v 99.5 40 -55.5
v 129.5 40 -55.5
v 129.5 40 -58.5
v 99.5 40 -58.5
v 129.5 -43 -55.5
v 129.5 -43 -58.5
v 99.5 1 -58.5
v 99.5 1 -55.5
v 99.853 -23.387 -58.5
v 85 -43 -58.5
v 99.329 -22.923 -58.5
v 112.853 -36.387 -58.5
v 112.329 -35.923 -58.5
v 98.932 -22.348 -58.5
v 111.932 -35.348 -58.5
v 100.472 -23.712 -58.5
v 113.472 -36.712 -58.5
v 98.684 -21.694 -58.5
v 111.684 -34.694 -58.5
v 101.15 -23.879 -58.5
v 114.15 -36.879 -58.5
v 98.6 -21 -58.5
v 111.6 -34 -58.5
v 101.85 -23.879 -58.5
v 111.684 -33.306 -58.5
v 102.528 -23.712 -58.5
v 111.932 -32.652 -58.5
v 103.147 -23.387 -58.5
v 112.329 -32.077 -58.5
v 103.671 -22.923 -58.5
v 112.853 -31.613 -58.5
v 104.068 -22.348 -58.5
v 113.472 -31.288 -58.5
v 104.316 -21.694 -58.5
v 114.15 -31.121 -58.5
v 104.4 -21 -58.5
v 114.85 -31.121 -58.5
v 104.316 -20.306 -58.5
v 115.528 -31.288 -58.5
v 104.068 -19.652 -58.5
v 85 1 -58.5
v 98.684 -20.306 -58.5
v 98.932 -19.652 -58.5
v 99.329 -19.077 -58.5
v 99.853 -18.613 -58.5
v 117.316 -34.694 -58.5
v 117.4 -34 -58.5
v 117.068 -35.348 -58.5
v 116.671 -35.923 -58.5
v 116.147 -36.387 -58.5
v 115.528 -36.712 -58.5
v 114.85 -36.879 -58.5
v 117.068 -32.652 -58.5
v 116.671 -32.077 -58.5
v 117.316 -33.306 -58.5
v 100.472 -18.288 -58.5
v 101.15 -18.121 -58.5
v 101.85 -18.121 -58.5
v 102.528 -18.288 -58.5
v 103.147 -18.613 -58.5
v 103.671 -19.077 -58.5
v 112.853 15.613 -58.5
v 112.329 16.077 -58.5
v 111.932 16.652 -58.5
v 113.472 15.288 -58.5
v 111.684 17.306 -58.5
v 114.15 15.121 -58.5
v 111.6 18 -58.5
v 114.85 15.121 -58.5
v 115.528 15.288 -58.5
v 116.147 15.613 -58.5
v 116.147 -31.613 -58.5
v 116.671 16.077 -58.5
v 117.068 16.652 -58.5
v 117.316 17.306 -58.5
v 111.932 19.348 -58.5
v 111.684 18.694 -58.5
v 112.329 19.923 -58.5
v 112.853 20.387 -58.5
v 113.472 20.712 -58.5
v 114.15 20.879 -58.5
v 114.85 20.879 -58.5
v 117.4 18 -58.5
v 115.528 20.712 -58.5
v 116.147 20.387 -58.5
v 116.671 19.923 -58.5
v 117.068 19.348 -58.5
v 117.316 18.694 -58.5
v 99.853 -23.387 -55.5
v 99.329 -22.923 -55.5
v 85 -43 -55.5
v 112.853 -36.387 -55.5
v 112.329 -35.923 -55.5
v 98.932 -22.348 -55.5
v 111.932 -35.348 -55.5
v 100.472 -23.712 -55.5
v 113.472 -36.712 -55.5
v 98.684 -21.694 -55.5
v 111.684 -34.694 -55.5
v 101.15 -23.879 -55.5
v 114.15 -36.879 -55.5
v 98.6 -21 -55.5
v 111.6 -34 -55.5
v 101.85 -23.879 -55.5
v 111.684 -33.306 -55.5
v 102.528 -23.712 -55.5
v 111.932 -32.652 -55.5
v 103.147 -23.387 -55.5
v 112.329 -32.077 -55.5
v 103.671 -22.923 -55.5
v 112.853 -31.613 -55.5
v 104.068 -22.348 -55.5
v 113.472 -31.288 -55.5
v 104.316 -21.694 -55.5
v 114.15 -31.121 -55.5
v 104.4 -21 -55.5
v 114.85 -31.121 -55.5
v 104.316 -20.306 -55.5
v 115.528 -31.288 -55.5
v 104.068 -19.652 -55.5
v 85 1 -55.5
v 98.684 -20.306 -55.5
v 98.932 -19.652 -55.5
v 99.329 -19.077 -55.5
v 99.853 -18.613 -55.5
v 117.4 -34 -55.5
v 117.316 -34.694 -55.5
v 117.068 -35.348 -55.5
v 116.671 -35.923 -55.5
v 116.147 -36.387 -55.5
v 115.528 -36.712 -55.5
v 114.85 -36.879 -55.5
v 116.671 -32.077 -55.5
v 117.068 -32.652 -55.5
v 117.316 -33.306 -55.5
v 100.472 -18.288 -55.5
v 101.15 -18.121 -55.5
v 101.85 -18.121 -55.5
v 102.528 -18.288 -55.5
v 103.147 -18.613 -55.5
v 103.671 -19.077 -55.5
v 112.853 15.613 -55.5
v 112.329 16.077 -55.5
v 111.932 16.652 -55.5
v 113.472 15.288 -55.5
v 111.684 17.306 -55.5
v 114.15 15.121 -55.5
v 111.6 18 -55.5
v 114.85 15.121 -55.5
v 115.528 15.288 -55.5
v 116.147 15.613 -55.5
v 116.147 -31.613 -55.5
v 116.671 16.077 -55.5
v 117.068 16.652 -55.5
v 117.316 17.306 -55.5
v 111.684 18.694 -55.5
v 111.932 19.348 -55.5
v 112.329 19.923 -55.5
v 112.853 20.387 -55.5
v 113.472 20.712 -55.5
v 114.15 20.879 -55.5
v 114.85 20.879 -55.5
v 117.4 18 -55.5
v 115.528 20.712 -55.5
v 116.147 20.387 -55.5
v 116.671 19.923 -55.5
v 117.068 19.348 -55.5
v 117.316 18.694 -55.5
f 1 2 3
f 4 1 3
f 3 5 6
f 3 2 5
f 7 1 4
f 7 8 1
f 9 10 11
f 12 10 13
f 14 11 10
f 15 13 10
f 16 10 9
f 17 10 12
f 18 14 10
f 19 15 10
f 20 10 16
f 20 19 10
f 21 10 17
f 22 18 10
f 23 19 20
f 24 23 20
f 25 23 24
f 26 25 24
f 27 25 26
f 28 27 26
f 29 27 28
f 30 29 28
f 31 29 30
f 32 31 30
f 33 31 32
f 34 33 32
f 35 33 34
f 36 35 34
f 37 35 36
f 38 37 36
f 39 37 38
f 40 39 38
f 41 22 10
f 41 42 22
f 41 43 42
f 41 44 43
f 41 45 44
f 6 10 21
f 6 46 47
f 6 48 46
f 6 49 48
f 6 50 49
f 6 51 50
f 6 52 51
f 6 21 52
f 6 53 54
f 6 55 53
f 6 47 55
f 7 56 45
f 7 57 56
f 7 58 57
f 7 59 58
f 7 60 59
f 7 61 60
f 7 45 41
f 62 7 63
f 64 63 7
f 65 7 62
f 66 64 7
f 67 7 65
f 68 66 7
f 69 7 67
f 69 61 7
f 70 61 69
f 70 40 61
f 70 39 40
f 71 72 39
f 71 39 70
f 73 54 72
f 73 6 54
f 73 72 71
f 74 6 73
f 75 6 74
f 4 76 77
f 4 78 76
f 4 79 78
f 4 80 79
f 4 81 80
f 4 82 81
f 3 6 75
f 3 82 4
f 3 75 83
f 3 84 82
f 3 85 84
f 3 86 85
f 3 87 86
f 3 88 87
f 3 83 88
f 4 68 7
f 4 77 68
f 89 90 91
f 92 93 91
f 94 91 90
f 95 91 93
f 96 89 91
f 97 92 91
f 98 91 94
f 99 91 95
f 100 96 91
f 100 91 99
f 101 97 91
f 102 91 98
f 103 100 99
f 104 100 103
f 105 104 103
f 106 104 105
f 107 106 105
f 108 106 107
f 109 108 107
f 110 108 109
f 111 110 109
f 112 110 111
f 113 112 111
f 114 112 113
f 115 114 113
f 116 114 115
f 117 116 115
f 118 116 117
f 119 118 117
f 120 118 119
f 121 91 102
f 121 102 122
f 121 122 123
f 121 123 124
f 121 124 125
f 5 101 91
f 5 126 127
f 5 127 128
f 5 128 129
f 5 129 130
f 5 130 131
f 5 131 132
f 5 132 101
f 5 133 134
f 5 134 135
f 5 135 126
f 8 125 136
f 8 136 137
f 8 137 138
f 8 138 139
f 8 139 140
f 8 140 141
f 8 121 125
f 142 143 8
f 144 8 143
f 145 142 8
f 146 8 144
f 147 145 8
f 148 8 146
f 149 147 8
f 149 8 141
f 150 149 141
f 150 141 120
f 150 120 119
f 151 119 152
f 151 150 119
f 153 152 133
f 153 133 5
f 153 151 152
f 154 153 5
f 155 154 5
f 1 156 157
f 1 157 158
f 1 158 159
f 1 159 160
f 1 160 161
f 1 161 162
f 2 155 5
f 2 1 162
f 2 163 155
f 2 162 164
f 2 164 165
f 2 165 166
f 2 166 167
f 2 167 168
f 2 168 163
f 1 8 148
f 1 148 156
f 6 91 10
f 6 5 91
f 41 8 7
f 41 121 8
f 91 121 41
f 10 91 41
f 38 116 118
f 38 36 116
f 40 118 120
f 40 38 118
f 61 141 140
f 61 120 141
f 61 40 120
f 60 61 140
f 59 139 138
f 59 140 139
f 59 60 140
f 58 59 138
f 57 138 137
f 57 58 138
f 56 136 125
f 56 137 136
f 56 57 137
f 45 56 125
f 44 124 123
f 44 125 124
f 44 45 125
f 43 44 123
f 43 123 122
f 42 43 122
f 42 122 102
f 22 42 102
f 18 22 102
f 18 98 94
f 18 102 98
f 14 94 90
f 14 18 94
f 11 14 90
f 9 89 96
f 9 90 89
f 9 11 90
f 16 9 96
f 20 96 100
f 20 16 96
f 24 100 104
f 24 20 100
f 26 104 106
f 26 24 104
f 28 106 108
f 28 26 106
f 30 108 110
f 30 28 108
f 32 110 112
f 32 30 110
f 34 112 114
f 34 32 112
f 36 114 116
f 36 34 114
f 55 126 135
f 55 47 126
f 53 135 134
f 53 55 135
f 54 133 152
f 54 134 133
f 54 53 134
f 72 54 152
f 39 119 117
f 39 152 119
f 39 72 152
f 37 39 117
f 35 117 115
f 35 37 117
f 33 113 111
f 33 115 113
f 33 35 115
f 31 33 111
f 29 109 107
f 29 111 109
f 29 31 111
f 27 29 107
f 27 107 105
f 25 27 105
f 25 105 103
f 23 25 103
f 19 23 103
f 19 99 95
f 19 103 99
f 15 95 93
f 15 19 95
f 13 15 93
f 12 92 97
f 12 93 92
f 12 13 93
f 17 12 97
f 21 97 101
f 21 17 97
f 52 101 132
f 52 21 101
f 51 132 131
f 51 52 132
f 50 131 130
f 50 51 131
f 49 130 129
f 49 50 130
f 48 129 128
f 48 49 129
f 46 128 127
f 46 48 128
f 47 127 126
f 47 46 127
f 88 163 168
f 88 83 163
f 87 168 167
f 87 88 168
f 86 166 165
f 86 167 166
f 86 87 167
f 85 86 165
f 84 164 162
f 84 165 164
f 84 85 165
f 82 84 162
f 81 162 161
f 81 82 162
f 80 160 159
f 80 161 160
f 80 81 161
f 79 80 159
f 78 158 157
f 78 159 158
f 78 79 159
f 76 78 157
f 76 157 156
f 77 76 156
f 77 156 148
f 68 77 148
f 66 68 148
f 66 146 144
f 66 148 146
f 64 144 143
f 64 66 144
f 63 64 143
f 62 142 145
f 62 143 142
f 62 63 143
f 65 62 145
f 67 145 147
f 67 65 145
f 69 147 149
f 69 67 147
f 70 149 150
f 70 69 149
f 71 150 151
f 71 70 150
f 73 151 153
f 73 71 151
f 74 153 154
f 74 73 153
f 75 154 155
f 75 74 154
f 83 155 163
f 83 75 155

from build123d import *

# Parameters (mm, degrees)
PAD034_DEPTH  = 3
SKETCH060_R   = 2.9
HOLE001_DEPTH = 4.001


with BuildPart() as part:
    # Sketch058 → Pad034 (new body)
    with BuildSketch(Plane.XY.offset(-58.5)):
        Polygon((111, 40), (81, 40), (81, 1), (66.5, 1), (66.5, -43), (111, -43), align=None)
    extrude(amount=PAD034_DEPTH)

    # Sketch060 → Hole001 (cut, through all)
    with BuildSketch(Plane(origin=(1, 0, -54.5), x_dir=(1, 0, 0), z_dir=(0, 0, 1))):
        with Locations((95, 18)):
            Circle(SKETCH060_R)
        with Locations((82, -21)):
            Circle(SKETCH060_R)
        with Locations((95, -34)):
            Circle(SKETCH060_R)
    extrude(amount=-HOLE001_DEPTH, mode=Mode.SUBTRACT)


with BuildPart() as part_1:
    # Body014 placement: moved
    add(part.part.moved(Location((18.5, 0, 0))))


solid = part_1.part
